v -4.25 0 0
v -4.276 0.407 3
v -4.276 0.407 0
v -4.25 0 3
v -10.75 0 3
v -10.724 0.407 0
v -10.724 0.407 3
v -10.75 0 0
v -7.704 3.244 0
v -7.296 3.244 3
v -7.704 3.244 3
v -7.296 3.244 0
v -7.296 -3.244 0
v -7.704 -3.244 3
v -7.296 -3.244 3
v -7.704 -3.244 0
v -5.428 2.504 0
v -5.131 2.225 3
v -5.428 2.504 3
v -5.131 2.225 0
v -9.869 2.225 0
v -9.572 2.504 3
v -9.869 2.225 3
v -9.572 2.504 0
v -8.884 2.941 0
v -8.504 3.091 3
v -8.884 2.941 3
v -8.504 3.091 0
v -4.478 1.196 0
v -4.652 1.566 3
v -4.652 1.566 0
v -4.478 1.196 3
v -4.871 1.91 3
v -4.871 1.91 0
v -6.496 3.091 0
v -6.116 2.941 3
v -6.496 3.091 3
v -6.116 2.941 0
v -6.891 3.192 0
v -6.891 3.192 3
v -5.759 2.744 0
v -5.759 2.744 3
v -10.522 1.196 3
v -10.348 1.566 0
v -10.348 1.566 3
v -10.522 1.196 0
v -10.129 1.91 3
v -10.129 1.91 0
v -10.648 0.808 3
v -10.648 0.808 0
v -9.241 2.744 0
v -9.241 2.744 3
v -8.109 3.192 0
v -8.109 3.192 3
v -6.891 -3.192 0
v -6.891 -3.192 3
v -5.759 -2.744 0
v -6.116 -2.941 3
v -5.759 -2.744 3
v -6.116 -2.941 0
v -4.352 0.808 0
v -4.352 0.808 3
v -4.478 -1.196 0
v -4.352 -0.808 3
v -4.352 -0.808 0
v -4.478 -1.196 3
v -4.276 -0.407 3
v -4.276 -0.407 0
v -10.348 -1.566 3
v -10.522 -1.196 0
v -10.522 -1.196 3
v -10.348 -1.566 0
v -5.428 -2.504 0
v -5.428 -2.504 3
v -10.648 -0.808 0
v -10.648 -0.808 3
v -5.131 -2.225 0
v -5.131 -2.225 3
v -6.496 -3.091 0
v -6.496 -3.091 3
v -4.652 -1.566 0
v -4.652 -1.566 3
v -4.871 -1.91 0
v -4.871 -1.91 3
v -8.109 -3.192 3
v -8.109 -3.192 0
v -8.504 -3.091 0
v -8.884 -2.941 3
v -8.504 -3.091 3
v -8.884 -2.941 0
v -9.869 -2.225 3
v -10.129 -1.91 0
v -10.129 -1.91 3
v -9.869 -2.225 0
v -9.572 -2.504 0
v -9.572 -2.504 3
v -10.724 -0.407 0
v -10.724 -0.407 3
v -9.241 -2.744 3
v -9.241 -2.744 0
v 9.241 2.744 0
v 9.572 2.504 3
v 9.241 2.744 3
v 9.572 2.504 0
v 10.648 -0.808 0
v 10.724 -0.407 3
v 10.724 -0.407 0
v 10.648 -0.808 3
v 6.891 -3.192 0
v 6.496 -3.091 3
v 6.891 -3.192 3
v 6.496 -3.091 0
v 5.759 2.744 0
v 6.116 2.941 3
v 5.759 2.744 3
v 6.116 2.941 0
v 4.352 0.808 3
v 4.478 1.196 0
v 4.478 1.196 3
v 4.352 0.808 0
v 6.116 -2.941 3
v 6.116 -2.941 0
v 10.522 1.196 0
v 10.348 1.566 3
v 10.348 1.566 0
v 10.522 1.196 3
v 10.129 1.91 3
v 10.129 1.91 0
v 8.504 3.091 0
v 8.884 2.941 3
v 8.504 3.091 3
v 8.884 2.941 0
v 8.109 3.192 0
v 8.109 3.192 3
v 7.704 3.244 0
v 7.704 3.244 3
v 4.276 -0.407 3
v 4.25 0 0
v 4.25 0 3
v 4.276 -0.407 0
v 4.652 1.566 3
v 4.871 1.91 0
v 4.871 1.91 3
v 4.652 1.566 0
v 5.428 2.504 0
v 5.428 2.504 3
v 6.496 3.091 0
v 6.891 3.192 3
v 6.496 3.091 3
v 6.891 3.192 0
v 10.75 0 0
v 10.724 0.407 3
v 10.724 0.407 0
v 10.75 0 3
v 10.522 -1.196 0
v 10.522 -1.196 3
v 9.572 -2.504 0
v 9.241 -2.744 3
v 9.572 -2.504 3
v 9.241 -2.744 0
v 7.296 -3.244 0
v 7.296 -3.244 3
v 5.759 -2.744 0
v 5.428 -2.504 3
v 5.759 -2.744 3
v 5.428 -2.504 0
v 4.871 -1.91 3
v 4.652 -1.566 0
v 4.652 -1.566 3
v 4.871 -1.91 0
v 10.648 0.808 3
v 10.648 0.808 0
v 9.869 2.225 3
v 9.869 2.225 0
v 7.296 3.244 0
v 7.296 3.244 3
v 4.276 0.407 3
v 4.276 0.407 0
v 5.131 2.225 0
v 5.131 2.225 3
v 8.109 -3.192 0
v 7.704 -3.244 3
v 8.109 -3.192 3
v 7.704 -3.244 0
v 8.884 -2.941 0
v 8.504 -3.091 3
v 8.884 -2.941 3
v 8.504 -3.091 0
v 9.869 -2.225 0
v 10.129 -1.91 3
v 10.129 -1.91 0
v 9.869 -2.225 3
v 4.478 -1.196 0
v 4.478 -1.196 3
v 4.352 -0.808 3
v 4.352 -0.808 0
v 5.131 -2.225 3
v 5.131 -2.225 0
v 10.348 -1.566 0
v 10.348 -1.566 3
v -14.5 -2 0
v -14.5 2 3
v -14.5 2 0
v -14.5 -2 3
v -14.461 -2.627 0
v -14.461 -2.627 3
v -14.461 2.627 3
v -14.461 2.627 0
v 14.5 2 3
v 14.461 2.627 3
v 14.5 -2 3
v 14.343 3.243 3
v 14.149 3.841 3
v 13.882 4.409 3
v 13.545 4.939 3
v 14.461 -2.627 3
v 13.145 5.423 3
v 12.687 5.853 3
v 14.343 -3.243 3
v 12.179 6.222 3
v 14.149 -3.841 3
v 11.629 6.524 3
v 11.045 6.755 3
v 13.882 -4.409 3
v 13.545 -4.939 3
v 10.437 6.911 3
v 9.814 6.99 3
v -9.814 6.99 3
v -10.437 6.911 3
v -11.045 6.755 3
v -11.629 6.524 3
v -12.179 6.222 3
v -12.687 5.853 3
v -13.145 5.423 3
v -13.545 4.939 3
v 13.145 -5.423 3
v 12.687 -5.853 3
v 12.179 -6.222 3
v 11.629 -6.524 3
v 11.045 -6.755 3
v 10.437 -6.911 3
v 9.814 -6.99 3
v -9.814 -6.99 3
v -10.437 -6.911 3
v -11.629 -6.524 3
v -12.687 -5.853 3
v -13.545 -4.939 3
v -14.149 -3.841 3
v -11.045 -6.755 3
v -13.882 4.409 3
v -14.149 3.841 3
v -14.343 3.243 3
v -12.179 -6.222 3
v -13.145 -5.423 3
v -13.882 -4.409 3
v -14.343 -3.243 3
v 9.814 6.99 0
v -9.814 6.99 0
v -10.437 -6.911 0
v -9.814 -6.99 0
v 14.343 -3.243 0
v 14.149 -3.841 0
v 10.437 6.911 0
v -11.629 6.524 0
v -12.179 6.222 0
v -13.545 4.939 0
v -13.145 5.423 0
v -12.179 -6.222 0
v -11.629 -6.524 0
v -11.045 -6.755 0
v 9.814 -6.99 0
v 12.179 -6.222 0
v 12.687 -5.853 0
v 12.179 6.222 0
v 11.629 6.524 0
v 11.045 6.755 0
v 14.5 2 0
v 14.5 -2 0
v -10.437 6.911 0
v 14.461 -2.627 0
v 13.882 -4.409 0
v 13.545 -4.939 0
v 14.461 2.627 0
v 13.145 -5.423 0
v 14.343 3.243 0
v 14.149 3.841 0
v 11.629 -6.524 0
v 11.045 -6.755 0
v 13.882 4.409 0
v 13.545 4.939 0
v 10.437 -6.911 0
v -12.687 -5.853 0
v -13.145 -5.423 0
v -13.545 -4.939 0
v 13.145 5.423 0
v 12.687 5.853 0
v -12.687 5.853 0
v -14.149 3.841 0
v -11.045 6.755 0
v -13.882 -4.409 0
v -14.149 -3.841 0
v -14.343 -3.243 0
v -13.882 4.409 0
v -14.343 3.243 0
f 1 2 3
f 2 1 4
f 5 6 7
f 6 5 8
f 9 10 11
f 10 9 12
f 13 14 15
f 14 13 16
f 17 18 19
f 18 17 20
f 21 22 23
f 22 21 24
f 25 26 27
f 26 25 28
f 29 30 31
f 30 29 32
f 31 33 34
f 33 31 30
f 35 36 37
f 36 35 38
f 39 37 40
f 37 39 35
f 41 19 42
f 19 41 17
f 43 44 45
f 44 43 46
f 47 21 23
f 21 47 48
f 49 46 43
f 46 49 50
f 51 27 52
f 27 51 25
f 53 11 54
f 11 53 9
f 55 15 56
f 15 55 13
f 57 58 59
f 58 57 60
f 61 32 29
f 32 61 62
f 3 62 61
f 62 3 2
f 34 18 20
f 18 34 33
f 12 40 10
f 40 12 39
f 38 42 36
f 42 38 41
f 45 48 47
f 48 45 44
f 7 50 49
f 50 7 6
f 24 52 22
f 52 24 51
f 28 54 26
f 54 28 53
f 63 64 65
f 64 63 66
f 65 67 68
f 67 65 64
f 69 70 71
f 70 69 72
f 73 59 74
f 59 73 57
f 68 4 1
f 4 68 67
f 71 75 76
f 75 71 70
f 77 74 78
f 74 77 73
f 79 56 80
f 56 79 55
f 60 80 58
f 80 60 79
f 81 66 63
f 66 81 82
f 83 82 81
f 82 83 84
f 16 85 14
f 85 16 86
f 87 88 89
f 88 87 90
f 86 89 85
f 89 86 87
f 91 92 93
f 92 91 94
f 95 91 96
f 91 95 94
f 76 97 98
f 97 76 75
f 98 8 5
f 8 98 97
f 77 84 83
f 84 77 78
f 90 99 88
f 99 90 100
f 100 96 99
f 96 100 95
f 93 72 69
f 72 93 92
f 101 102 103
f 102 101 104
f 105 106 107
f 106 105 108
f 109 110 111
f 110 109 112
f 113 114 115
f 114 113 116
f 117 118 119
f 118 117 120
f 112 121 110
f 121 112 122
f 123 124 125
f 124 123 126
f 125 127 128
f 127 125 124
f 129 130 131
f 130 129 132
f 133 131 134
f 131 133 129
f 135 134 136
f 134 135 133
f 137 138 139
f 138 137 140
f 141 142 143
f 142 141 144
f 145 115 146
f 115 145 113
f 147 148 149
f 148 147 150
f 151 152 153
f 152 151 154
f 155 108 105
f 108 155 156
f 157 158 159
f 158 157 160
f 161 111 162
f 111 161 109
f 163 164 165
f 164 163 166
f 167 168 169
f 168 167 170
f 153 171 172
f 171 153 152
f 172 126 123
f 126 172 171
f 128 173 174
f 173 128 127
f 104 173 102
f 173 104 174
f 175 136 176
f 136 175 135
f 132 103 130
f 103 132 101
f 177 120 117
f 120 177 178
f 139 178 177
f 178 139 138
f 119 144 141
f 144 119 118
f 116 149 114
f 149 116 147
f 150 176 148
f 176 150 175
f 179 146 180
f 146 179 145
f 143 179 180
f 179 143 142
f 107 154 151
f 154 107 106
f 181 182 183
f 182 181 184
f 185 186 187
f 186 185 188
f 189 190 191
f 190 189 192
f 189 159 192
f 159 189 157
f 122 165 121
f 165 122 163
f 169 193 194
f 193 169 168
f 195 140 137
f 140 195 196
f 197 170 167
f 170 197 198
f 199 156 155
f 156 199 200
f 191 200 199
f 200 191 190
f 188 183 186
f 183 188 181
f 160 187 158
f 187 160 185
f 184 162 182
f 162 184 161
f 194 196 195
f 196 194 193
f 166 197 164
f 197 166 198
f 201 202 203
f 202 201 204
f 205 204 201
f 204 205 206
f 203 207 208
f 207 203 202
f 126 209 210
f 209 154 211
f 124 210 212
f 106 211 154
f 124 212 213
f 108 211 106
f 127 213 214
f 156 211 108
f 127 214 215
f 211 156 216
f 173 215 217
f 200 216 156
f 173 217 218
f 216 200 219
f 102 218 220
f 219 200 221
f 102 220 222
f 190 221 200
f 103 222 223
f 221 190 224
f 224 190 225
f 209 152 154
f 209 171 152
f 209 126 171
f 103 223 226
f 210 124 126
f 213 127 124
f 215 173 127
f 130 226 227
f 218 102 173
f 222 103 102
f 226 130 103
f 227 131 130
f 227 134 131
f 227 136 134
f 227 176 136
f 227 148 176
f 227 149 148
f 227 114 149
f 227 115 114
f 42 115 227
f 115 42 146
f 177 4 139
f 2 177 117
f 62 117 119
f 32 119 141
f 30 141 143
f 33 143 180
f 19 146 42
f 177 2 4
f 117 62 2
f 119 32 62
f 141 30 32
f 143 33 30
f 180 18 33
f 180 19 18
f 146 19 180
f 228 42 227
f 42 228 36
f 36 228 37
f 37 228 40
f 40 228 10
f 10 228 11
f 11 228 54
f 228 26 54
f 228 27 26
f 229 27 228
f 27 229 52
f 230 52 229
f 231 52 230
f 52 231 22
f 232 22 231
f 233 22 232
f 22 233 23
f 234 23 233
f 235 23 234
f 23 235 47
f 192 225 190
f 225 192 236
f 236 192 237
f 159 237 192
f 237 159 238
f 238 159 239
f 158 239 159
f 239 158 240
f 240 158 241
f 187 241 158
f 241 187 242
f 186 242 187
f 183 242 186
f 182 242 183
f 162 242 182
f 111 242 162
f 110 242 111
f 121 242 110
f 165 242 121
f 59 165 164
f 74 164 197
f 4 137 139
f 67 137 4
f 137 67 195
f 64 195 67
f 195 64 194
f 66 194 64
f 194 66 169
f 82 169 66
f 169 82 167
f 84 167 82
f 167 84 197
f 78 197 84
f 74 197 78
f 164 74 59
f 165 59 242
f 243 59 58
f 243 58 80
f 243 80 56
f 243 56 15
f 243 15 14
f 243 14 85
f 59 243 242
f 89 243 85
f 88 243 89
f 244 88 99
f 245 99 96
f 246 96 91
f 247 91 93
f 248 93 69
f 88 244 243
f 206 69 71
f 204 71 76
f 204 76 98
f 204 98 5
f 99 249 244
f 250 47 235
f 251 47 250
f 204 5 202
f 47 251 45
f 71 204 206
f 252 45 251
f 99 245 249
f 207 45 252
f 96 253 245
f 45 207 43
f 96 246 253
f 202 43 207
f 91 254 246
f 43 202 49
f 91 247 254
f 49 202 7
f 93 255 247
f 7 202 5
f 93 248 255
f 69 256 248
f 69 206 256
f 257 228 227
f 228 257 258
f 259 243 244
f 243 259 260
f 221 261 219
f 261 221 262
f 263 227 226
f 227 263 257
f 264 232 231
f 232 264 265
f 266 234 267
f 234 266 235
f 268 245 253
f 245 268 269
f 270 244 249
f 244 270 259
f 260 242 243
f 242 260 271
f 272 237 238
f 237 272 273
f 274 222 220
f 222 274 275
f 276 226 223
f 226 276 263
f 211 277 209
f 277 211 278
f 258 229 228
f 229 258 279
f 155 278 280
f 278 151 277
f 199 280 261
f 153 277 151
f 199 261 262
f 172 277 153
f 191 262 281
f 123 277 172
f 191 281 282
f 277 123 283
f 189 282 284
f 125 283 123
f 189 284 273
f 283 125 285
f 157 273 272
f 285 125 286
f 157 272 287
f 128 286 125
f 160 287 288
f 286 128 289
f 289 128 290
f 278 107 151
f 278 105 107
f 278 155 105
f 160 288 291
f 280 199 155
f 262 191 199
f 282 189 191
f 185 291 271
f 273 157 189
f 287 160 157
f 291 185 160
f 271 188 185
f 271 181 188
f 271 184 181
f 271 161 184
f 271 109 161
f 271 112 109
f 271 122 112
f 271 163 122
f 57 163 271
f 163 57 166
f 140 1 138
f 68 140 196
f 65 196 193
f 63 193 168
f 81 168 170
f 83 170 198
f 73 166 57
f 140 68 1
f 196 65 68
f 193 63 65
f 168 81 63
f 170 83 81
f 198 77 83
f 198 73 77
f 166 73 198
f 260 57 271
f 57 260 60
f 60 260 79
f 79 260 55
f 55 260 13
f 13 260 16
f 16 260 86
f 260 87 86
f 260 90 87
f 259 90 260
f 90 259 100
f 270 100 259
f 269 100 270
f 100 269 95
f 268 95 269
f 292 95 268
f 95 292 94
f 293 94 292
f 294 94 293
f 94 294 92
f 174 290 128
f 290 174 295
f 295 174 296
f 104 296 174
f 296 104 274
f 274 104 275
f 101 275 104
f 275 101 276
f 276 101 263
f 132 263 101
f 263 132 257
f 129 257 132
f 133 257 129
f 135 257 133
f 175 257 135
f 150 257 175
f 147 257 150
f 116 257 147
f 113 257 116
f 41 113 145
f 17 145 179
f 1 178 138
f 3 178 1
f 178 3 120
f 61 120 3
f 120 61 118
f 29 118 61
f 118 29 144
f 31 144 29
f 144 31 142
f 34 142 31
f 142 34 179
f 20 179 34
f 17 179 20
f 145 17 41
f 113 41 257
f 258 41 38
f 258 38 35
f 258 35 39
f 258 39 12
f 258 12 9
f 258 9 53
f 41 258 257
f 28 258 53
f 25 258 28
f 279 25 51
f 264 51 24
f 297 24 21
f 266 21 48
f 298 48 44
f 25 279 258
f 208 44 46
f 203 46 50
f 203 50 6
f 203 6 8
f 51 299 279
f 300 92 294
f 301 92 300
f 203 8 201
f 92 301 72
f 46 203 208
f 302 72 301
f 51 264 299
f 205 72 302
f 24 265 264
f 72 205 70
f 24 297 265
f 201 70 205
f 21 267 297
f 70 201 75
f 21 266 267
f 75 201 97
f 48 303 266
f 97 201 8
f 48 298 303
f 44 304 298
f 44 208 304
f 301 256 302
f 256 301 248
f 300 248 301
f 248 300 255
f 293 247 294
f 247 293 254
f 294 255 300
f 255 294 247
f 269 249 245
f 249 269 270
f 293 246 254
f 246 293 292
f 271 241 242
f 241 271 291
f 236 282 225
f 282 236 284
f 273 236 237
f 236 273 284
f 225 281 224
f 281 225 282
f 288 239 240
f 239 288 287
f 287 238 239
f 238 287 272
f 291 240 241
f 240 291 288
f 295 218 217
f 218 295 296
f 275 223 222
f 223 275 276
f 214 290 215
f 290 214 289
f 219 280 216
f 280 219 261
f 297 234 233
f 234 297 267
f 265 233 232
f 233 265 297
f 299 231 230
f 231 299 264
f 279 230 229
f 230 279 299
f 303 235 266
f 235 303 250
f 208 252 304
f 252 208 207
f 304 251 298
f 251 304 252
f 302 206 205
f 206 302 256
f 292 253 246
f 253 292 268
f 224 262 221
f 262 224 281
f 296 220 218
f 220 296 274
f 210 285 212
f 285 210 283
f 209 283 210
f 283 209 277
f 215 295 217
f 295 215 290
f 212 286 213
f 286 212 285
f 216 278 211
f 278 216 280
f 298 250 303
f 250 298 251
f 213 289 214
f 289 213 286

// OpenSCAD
$fn = 50;


difference() {
	union() {
		hull() {
			translate(v = [-9.5000000000, 2.0000000000, 0]) {
				cylinder(h = 3, r = 5);
			}
			translate(v = [9.5000000000, 2.0000000000, 0]) {
				cylinder(h = 3, r = 5);
			}
			translate(v = [-9.5000000000, -2.0000000000, 0]) {
				cylinder(h = 3, r = 5);
			}
			translate(v = [9.5000000000, -2.0000000000, 0]) {
				cylinder(h = 3, r = 5);
			}
		}
	}
	union() {
		translate(v = [-7.5000000000, 0.0000000000, -100.0000000000]) {
			cylinder(h = 200, r = 3.2500000000);
		}
		translate(v = [7.5000000000, 0.0000000000, -100.0000000000]) {
			cylinder(h = 200, r = 3.2500000000);
		}
	}
}
